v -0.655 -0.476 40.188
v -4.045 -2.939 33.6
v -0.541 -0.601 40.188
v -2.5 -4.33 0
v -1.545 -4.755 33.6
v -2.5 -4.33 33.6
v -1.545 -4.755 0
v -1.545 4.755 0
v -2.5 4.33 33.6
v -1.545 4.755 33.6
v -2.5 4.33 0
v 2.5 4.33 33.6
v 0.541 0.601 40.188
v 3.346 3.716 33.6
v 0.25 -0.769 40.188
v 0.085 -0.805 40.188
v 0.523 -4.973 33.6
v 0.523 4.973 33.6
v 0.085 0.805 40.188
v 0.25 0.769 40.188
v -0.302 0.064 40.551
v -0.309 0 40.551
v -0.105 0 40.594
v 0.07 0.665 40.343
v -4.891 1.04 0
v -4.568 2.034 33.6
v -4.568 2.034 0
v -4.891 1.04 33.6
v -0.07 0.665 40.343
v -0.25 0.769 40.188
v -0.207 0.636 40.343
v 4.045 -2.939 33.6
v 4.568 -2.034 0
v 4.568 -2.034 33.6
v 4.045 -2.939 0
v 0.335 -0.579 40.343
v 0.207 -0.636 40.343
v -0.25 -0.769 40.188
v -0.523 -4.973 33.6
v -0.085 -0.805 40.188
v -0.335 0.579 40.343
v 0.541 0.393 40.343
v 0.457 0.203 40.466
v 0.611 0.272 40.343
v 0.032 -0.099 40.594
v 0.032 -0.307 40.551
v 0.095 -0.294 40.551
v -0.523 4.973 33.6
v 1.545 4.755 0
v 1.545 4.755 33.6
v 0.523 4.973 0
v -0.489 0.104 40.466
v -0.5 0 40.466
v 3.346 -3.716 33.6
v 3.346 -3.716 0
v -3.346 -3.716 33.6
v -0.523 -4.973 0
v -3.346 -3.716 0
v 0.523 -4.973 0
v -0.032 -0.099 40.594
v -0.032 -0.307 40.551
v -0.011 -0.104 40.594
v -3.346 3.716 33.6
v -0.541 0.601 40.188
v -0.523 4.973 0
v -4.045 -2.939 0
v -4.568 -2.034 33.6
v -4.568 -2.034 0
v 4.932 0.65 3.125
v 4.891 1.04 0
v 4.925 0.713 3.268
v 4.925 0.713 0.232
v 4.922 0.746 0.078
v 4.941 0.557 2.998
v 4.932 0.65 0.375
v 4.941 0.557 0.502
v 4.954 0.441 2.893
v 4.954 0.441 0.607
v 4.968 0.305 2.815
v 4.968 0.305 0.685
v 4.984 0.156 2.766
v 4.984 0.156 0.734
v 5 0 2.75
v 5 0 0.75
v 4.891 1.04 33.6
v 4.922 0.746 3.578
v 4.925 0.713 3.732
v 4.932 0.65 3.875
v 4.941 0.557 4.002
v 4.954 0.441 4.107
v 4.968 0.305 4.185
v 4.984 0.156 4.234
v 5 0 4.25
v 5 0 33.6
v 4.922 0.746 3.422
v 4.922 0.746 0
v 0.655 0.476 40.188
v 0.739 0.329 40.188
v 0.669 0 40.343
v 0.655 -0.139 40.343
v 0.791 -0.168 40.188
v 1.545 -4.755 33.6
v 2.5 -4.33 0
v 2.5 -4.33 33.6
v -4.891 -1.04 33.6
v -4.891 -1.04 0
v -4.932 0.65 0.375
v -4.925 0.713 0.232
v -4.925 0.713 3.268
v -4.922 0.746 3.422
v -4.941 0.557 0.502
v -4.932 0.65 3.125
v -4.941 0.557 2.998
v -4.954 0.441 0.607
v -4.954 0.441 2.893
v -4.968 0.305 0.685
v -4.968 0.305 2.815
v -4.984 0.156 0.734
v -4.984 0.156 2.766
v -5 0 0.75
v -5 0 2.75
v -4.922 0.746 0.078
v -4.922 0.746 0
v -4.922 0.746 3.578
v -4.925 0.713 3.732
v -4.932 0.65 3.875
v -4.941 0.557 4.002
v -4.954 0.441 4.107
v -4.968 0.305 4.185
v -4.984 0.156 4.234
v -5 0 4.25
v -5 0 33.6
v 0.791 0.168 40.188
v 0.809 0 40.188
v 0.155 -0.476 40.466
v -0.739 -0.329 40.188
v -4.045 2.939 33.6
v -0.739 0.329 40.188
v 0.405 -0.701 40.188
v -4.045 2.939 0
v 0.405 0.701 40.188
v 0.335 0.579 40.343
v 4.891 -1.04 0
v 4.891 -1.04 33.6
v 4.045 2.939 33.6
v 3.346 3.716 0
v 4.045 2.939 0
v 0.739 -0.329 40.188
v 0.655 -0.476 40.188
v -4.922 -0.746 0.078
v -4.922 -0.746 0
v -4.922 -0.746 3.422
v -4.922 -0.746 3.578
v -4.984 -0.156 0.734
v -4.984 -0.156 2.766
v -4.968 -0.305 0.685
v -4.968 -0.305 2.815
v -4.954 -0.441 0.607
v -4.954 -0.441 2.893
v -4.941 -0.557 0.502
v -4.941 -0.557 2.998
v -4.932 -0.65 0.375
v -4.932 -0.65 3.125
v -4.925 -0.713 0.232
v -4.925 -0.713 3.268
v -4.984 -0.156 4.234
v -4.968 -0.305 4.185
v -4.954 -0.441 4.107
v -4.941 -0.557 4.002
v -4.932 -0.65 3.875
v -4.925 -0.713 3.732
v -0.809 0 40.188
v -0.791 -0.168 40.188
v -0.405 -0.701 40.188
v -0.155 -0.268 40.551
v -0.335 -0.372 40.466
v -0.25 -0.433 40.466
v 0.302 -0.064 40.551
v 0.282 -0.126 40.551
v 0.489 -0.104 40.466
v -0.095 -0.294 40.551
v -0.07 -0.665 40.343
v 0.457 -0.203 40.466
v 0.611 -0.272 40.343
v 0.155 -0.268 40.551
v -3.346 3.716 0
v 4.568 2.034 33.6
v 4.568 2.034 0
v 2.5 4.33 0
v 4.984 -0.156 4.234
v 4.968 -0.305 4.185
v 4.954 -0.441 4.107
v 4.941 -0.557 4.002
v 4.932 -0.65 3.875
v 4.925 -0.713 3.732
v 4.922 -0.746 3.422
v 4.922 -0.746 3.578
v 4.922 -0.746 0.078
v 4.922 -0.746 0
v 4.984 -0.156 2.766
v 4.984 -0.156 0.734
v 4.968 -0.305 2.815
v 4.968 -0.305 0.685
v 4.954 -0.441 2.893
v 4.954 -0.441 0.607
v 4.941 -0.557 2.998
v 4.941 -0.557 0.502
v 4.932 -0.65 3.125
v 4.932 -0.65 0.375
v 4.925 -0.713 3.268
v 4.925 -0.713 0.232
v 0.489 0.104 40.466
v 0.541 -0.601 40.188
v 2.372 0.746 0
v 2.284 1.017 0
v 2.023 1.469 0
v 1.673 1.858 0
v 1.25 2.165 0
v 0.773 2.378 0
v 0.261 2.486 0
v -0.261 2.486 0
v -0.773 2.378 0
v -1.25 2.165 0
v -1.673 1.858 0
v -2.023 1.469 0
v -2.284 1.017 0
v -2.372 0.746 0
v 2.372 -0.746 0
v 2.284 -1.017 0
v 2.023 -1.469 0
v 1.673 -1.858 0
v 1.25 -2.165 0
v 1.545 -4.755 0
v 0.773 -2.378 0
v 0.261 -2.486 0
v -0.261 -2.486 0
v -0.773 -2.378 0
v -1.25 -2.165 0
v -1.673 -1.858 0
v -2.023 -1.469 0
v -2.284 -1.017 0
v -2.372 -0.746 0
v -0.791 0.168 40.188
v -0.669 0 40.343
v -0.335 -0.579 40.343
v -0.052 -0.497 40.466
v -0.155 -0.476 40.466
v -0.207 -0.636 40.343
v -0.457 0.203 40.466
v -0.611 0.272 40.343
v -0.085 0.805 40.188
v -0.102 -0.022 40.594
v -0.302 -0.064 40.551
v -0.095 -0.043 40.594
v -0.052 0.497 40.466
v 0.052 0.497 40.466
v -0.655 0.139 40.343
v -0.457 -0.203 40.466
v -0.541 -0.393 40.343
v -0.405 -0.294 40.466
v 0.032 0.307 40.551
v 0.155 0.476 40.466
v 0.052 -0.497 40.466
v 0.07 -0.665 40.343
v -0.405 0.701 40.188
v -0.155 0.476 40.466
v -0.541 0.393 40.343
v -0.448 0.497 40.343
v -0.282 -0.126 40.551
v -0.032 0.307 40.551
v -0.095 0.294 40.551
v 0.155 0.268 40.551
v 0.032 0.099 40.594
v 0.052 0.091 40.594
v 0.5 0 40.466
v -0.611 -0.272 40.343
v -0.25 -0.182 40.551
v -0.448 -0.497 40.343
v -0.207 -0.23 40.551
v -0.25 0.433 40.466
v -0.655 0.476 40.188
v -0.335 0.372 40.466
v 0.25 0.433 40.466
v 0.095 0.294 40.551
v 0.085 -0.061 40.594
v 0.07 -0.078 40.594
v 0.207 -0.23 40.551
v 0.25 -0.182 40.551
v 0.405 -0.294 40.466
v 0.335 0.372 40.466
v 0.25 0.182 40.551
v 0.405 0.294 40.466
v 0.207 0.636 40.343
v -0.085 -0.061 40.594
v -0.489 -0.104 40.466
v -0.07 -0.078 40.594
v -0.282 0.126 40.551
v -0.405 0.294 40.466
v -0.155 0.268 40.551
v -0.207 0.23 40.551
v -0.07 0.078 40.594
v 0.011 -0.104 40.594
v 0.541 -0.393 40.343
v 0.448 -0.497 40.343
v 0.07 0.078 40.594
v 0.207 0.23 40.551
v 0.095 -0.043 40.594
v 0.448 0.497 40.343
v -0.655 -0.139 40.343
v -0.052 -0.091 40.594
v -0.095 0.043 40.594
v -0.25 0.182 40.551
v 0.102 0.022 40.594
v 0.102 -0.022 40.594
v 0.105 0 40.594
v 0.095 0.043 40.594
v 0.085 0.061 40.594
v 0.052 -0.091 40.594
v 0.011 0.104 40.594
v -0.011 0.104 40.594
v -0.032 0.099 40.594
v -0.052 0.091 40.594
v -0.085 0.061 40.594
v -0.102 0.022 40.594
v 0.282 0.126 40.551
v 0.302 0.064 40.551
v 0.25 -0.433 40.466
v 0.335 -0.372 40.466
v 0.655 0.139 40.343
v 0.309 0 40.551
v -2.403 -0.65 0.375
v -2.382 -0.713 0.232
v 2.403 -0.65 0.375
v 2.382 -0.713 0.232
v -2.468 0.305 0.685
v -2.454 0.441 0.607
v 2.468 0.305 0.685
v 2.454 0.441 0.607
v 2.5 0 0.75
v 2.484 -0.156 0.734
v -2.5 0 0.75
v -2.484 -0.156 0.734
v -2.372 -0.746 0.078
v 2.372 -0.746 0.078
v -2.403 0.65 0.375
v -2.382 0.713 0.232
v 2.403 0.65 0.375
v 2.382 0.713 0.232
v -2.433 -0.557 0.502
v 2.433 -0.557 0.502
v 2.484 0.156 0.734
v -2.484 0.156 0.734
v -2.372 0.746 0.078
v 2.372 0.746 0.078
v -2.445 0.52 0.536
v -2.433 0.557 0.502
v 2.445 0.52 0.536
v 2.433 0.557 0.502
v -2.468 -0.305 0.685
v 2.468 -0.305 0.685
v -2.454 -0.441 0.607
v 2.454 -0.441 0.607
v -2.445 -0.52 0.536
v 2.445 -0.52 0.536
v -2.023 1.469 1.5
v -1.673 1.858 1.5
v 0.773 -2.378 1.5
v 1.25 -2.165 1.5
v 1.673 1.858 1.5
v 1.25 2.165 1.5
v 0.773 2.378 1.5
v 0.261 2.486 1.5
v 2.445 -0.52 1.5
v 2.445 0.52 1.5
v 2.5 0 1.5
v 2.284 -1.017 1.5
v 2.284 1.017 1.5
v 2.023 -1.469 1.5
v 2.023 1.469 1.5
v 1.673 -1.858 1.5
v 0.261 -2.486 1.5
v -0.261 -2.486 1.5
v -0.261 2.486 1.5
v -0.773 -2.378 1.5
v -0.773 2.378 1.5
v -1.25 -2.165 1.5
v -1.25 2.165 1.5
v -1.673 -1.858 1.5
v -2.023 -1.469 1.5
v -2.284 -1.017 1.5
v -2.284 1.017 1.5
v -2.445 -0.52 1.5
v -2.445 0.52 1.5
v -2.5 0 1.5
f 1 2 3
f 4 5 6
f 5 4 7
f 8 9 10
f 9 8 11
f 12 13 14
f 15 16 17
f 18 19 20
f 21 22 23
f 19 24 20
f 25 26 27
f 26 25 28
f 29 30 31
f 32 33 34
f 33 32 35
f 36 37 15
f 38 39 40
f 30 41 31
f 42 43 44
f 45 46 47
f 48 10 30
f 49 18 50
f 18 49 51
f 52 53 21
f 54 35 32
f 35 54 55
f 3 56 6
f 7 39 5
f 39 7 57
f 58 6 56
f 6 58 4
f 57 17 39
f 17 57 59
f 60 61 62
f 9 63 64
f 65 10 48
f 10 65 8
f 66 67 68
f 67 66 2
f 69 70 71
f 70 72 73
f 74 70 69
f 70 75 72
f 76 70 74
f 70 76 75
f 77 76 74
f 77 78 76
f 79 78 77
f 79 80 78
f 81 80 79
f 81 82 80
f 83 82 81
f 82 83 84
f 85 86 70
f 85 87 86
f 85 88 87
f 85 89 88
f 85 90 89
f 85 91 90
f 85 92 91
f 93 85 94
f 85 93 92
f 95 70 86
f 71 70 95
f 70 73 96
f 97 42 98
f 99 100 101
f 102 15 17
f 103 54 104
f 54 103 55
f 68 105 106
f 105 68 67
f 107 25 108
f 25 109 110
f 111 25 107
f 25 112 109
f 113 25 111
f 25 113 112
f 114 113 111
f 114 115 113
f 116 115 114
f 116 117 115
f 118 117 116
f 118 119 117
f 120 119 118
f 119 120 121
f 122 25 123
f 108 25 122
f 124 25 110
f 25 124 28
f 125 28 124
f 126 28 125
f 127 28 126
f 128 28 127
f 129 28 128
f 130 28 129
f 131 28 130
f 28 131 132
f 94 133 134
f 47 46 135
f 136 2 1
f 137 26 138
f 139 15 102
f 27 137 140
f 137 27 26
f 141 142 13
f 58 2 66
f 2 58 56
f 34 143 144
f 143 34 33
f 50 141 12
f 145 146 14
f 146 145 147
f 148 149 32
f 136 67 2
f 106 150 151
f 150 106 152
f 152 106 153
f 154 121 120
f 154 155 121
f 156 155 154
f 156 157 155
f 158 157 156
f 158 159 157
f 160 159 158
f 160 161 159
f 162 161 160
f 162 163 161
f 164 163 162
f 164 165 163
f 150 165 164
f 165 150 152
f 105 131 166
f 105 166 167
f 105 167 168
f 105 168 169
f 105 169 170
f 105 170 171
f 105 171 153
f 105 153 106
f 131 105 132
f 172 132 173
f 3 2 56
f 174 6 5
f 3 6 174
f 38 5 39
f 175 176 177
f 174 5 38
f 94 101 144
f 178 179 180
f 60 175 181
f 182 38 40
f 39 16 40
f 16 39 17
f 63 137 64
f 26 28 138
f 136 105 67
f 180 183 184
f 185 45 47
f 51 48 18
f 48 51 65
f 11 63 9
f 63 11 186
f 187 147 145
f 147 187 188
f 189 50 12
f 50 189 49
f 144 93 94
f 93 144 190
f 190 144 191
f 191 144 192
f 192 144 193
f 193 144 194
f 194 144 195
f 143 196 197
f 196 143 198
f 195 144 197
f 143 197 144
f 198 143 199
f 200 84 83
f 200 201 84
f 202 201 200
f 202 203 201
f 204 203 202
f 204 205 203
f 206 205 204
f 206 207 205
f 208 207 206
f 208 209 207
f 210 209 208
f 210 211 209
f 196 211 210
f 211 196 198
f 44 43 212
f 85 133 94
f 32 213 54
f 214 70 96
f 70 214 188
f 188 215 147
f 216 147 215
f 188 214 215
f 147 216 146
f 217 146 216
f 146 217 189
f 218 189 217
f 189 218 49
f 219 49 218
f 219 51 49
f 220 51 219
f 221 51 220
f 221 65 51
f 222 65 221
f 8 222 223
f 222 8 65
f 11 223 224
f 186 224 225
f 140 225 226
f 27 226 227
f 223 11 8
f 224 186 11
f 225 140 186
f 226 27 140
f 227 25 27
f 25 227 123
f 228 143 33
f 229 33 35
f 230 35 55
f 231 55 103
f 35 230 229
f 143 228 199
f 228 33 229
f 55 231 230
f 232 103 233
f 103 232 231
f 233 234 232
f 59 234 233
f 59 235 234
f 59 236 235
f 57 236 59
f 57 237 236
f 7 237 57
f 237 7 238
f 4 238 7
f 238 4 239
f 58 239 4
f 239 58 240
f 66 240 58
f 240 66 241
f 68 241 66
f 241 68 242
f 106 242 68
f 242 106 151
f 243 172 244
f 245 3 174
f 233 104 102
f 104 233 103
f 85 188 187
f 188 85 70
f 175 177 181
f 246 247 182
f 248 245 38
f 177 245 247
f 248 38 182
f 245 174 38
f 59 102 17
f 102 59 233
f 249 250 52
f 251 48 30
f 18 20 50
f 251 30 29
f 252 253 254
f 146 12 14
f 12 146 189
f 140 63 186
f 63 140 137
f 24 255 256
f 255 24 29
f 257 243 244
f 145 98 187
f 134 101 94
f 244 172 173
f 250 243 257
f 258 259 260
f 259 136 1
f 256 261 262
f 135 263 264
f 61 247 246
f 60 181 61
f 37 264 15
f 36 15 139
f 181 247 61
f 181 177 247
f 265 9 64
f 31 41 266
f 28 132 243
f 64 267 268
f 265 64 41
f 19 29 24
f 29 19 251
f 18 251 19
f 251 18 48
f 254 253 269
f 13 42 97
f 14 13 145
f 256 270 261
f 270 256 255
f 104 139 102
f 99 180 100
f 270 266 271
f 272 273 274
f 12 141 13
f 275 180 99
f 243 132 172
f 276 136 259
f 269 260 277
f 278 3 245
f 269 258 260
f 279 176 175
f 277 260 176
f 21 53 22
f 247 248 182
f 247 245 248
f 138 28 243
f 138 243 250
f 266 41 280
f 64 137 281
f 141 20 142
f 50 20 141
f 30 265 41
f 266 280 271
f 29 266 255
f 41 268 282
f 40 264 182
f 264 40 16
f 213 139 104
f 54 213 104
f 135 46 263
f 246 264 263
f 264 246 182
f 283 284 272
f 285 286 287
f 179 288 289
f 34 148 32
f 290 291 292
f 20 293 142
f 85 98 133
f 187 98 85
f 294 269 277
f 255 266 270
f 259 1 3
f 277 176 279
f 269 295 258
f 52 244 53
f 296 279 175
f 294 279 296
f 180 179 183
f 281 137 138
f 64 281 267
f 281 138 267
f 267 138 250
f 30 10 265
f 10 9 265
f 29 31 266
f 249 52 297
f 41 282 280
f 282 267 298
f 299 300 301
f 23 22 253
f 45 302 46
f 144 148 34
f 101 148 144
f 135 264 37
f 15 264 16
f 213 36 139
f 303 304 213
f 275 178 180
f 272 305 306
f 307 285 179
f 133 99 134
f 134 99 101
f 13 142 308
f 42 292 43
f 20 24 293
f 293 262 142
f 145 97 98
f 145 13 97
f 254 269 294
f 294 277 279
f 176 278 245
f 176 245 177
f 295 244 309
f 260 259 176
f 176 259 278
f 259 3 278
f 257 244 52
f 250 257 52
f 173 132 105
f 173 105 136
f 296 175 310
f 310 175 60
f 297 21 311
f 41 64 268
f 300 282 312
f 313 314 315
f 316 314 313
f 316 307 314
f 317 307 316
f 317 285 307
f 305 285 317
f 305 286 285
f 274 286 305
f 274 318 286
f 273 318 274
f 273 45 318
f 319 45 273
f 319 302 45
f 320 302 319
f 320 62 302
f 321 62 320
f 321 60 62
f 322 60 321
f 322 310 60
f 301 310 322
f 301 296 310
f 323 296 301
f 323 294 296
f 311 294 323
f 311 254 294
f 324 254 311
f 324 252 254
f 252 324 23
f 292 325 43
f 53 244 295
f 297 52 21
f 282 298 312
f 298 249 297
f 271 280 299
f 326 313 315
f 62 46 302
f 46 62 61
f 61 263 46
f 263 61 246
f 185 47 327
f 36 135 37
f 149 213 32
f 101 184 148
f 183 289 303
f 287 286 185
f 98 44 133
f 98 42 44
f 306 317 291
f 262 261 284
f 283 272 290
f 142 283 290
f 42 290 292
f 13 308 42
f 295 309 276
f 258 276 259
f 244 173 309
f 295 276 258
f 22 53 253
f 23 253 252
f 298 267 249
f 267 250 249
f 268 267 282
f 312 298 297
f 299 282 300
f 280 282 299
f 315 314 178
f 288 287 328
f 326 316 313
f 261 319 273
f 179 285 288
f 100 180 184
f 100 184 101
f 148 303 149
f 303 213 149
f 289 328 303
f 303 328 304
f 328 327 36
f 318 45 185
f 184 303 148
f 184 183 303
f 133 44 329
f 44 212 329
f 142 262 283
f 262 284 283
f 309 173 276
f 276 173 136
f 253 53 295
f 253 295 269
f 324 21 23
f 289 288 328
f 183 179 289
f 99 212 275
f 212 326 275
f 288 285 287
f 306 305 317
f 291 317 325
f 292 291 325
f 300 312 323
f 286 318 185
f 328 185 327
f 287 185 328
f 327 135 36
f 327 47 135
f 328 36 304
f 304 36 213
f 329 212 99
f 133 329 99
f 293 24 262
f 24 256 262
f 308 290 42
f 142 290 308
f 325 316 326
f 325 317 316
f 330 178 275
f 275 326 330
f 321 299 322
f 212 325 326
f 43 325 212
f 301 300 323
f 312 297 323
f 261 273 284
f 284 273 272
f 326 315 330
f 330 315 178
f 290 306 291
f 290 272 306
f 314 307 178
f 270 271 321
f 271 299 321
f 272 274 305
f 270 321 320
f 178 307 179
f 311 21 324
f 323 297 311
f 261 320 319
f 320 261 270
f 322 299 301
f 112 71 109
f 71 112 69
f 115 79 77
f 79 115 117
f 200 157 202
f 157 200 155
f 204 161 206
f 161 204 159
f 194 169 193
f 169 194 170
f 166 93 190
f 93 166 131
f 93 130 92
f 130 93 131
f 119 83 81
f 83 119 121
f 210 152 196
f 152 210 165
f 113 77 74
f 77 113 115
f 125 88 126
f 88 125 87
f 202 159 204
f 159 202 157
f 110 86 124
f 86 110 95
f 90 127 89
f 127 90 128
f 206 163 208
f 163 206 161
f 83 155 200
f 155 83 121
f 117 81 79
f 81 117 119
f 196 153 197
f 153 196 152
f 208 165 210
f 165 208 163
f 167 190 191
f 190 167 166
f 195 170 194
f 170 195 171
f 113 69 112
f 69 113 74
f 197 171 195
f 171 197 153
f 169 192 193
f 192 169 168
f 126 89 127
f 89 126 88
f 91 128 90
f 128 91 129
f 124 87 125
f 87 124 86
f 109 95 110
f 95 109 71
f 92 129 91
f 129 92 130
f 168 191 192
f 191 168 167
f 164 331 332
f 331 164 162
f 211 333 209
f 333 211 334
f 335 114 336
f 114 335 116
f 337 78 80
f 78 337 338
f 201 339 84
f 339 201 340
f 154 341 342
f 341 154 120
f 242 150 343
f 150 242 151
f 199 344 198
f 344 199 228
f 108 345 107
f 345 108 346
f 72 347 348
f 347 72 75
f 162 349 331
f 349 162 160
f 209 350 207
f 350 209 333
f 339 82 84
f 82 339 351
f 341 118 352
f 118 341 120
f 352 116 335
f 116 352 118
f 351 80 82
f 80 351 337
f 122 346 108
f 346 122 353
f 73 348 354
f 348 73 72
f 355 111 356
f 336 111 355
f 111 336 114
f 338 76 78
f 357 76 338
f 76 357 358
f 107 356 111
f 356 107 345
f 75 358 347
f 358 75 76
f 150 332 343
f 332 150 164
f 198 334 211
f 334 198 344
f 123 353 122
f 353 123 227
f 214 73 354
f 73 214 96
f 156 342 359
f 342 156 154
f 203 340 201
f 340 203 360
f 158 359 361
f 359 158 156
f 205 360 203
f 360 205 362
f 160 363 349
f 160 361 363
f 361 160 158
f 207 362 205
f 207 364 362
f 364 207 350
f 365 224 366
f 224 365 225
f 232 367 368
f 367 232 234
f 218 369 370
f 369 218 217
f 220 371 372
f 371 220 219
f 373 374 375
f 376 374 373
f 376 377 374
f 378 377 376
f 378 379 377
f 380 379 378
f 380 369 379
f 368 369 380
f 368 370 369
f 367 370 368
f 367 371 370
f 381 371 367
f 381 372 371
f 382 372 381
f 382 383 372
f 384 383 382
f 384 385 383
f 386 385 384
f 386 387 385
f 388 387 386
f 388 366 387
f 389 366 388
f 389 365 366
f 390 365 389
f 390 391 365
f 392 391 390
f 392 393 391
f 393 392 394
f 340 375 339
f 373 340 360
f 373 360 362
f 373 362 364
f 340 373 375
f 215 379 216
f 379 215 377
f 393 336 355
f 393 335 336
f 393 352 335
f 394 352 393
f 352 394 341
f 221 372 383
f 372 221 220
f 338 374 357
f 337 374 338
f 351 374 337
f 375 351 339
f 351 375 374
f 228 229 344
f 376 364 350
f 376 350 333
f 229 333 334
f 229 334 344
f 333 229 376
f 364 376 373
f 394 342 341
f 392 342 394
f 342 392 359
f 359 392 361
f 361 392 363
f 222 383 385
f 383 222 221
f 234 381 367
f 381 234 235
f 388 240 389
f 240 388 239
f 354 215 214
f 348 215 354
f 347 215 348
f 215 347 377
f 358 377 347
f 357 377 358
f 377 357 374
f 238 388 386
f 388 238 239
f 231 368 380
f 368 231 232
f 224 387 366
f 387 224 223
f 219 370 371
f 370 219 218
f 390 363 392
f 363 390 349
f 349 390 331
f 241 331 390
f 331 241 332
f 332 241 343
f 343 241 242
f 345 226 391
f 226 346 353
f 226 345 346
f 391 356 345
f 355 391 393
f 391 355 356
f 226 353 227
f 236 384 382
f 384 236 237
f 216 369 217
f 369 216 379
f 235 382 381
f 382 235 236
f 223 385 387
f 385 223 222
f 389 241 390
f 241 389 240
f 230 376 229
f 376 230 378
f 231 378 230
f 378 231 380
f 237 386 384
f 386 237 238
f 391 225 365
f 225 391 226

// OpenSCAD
// file: dimensions.scad
//------------------------------------------------------------------------------
// Cargo holder - dimensions
//
// This file contains the dimensions for the cargo holder mechanism.
//
// This model is part of the AutonomousDroneDeliverySystem:
// https://github.com/Andreas-Menzel/AutonomousDroneDeliverySystem
//------------------------------------------------------------------------------
// @author: Andreas Menzel
// @copyright: Copyright (c) 2022 Andreas Menzel
//------------------------------------------------------------------------------

// Notes:
// - width, length and height are always in relation to the drone, unless
//   explicitly stated otherwise

//////////////////////////////// Contact Plate /////////////////////////////////
// The contact plates of the container- and drone- part touch. They have the
// same size. TODO: Use magnets to help with the alignment of the parts?
contact_plate_width = 150;
contact_plate_length = 150;
contact_plate_wall_thickness = 2;
contact_plate_center_cutout_diameter = 65;

//////////////////////////////// Alignment Pin /////////////////////////////////
// Pins used to align the cargo container relative to the drone. This mechanism
// can (only) correct small misalignments.

// Offset from the contact plate sides
alignment_pin_offset = 5;
// Clearance (on all sides) to allow for slightly misaligned drone / cargo
// container
alignment_pin_align_clearance = 6;

alignment_pin_width_base = contact_plate_width - 2*alignment_pin_offset;
alignment_pin_length_base = 17;

alignment_pin_width_top = alignment_pin_width_base - 2*alignment_pin_align_clearance;
alignment_pin_length_top = alignment_pin_length_base - 2*alignment_pin_align_clearance;

alignment_pin_height = 20;

alignment_pin_slot_wall_thickness = 2;
// The wall thickness of the alignment pin slot measured in XY-plane. The
// The wall thickness is slightly smaller. TODO: calculate correctly.
alignment_pin_slot_plane_wall_thickness = 2.5;

// Half of the clearance will be added to each part (container / drone)
alignment_pin_clearance = 0.25;

// Center cutout of the alignment pin. For weight reduction.
alignment_pin_center_cutout_width = contact_plate_width - 2*alignment_pin_offset - (alignment_pin_width_base - alignment_pin_width_top) - 2*20;

////////////////////////////// Locking Mechanism ///////////////////////////////
locking_mechanism_pin_wire_diamter = 1.5;
locking_mechanism_pin_connection_length = 7;
locking_mechanism_pin_tip_length = 7;
locking_mechanism_pin_tip_diameter = 2;
locking_mechanism_pin_diameter = 10;
locking_mechanism_pin_clearance_lock = 0.5;
locking_mechanism_pin_clearance_key = 2;

locking_mechanism_lock_key_clearance = 2*alignment_pin_align_clearance;

// The key part is located on the container
locking_mechanism_key_thickness = 4;
locking_mechanism_key_pin_outline = 4; // Wall thickness around the hole of the
                                       // locking pin.

// The lock part is located on the drone
locking_mechanism_lock_offset = alignment_pin_offset;
locking_mechanism_lock_wall_thickness = 2;
locking_mechanism_lock_rest_length = (locking_mechanism_lock_key_clearance + locking_mechanism_key_thickness) * 0.85;
locking_mechanism_lock_rest_wall_thickness = 2;

///////////////////////////////// Servo Mount //////////////////////////////////
servo_slot_wall_thickness = 1;
servo_slot_height = 10;

servo_mount_width = 5;
servo_mount_thickness = 7;
servo_mount_screw_slot_width = 0.75;

servo_assembly_thickness = 5;

// The width OF THE SERVO - smaller side of the servo; not in relation to the
// drone
servo_body_width = 12;
// The length OF THE SERVO - larger side of the servo; not in relation to the
// drone
servo_body_length = 23;
servo_center_offset = 6;
servo_height_offset = 11;

// Wall thickness of the slot on the drone part in which the servo mount will be
// glued to.
servo_mount_drone_part_wall_thickness = 3;

///////////////////////////////////// Logo /////////////////////////////////////
logo_depth_contact_plate = 1;
// main file
//------------------------------------------------------------------------------
// Cargo holder - locking pin
//
// This model contains the pin to lock the container to the drone.
//
// This model is part of the AutonomousDroneDeliverySystem:
// https://github.com/Andreas-Menzel/AutonomousDroneDeliverySystem
//------------------------------------------------------------------------------
// @author: Andreas Menzel
// @copyright: Copyright (c) 2022 Andreas Menzel
//------------------------------------------------------------------------------


include <dimensions.scad>


module locking_pin() {
    // Short versions of the variables needed
    pin_diameter = locking_mechanism_pin_diameter;
    lock_wall_thickness = locking_mechanism_lock_wall_thickness;
    key_thickness = locking_mechanism_key_thickness;
    lock_key_clearance = locking_mechanism_lock_key_clearance;
    rest_length = locking_mechanism_lock_rest_length;
    tip_length = locking_mechanism_pin_tip_length;
    tip_diameter = locking_mechanism_pin_tip_diameter;

    slide_length = 2*lock_wall_thickness + key_thickness + lock_key_clearance + rest_length;

    wire_diameter = locking_mechanism_pin_wire_diamter;
    connection_length = locking_mechanism_pin_connection_length;
    
$fn=30;
    difference() {
        // Main pin
        hull() {
            cylinder(d=pin_diameter, h=slide_length + connection_length - tip_length);
            translate([0, 0, slide_length + connection_length - (tip_diameter / 2)])
                sphere(d=tip_diameter);
        }

        translate([-pin_diameter / 2, 0, connection_length / 2])
            rotate([0, 90, 0])
            cylinder(d=wire_diameter, h=pin_diameter);
        translate([-pin_diameter / 2, 0, 0])
            rotate([0, 90, 0])
            cylinder(d=wire_diameter, h=pin_diameter);
        
        cylinder(d=pin_diameter / 2 ,h=wire_diameter);
    }
}


// When executing the `export.sh` script, this variable will autimatically be
// set to true. The default value should be false.
export = true;
if(export) {
    locking_pin();
}
